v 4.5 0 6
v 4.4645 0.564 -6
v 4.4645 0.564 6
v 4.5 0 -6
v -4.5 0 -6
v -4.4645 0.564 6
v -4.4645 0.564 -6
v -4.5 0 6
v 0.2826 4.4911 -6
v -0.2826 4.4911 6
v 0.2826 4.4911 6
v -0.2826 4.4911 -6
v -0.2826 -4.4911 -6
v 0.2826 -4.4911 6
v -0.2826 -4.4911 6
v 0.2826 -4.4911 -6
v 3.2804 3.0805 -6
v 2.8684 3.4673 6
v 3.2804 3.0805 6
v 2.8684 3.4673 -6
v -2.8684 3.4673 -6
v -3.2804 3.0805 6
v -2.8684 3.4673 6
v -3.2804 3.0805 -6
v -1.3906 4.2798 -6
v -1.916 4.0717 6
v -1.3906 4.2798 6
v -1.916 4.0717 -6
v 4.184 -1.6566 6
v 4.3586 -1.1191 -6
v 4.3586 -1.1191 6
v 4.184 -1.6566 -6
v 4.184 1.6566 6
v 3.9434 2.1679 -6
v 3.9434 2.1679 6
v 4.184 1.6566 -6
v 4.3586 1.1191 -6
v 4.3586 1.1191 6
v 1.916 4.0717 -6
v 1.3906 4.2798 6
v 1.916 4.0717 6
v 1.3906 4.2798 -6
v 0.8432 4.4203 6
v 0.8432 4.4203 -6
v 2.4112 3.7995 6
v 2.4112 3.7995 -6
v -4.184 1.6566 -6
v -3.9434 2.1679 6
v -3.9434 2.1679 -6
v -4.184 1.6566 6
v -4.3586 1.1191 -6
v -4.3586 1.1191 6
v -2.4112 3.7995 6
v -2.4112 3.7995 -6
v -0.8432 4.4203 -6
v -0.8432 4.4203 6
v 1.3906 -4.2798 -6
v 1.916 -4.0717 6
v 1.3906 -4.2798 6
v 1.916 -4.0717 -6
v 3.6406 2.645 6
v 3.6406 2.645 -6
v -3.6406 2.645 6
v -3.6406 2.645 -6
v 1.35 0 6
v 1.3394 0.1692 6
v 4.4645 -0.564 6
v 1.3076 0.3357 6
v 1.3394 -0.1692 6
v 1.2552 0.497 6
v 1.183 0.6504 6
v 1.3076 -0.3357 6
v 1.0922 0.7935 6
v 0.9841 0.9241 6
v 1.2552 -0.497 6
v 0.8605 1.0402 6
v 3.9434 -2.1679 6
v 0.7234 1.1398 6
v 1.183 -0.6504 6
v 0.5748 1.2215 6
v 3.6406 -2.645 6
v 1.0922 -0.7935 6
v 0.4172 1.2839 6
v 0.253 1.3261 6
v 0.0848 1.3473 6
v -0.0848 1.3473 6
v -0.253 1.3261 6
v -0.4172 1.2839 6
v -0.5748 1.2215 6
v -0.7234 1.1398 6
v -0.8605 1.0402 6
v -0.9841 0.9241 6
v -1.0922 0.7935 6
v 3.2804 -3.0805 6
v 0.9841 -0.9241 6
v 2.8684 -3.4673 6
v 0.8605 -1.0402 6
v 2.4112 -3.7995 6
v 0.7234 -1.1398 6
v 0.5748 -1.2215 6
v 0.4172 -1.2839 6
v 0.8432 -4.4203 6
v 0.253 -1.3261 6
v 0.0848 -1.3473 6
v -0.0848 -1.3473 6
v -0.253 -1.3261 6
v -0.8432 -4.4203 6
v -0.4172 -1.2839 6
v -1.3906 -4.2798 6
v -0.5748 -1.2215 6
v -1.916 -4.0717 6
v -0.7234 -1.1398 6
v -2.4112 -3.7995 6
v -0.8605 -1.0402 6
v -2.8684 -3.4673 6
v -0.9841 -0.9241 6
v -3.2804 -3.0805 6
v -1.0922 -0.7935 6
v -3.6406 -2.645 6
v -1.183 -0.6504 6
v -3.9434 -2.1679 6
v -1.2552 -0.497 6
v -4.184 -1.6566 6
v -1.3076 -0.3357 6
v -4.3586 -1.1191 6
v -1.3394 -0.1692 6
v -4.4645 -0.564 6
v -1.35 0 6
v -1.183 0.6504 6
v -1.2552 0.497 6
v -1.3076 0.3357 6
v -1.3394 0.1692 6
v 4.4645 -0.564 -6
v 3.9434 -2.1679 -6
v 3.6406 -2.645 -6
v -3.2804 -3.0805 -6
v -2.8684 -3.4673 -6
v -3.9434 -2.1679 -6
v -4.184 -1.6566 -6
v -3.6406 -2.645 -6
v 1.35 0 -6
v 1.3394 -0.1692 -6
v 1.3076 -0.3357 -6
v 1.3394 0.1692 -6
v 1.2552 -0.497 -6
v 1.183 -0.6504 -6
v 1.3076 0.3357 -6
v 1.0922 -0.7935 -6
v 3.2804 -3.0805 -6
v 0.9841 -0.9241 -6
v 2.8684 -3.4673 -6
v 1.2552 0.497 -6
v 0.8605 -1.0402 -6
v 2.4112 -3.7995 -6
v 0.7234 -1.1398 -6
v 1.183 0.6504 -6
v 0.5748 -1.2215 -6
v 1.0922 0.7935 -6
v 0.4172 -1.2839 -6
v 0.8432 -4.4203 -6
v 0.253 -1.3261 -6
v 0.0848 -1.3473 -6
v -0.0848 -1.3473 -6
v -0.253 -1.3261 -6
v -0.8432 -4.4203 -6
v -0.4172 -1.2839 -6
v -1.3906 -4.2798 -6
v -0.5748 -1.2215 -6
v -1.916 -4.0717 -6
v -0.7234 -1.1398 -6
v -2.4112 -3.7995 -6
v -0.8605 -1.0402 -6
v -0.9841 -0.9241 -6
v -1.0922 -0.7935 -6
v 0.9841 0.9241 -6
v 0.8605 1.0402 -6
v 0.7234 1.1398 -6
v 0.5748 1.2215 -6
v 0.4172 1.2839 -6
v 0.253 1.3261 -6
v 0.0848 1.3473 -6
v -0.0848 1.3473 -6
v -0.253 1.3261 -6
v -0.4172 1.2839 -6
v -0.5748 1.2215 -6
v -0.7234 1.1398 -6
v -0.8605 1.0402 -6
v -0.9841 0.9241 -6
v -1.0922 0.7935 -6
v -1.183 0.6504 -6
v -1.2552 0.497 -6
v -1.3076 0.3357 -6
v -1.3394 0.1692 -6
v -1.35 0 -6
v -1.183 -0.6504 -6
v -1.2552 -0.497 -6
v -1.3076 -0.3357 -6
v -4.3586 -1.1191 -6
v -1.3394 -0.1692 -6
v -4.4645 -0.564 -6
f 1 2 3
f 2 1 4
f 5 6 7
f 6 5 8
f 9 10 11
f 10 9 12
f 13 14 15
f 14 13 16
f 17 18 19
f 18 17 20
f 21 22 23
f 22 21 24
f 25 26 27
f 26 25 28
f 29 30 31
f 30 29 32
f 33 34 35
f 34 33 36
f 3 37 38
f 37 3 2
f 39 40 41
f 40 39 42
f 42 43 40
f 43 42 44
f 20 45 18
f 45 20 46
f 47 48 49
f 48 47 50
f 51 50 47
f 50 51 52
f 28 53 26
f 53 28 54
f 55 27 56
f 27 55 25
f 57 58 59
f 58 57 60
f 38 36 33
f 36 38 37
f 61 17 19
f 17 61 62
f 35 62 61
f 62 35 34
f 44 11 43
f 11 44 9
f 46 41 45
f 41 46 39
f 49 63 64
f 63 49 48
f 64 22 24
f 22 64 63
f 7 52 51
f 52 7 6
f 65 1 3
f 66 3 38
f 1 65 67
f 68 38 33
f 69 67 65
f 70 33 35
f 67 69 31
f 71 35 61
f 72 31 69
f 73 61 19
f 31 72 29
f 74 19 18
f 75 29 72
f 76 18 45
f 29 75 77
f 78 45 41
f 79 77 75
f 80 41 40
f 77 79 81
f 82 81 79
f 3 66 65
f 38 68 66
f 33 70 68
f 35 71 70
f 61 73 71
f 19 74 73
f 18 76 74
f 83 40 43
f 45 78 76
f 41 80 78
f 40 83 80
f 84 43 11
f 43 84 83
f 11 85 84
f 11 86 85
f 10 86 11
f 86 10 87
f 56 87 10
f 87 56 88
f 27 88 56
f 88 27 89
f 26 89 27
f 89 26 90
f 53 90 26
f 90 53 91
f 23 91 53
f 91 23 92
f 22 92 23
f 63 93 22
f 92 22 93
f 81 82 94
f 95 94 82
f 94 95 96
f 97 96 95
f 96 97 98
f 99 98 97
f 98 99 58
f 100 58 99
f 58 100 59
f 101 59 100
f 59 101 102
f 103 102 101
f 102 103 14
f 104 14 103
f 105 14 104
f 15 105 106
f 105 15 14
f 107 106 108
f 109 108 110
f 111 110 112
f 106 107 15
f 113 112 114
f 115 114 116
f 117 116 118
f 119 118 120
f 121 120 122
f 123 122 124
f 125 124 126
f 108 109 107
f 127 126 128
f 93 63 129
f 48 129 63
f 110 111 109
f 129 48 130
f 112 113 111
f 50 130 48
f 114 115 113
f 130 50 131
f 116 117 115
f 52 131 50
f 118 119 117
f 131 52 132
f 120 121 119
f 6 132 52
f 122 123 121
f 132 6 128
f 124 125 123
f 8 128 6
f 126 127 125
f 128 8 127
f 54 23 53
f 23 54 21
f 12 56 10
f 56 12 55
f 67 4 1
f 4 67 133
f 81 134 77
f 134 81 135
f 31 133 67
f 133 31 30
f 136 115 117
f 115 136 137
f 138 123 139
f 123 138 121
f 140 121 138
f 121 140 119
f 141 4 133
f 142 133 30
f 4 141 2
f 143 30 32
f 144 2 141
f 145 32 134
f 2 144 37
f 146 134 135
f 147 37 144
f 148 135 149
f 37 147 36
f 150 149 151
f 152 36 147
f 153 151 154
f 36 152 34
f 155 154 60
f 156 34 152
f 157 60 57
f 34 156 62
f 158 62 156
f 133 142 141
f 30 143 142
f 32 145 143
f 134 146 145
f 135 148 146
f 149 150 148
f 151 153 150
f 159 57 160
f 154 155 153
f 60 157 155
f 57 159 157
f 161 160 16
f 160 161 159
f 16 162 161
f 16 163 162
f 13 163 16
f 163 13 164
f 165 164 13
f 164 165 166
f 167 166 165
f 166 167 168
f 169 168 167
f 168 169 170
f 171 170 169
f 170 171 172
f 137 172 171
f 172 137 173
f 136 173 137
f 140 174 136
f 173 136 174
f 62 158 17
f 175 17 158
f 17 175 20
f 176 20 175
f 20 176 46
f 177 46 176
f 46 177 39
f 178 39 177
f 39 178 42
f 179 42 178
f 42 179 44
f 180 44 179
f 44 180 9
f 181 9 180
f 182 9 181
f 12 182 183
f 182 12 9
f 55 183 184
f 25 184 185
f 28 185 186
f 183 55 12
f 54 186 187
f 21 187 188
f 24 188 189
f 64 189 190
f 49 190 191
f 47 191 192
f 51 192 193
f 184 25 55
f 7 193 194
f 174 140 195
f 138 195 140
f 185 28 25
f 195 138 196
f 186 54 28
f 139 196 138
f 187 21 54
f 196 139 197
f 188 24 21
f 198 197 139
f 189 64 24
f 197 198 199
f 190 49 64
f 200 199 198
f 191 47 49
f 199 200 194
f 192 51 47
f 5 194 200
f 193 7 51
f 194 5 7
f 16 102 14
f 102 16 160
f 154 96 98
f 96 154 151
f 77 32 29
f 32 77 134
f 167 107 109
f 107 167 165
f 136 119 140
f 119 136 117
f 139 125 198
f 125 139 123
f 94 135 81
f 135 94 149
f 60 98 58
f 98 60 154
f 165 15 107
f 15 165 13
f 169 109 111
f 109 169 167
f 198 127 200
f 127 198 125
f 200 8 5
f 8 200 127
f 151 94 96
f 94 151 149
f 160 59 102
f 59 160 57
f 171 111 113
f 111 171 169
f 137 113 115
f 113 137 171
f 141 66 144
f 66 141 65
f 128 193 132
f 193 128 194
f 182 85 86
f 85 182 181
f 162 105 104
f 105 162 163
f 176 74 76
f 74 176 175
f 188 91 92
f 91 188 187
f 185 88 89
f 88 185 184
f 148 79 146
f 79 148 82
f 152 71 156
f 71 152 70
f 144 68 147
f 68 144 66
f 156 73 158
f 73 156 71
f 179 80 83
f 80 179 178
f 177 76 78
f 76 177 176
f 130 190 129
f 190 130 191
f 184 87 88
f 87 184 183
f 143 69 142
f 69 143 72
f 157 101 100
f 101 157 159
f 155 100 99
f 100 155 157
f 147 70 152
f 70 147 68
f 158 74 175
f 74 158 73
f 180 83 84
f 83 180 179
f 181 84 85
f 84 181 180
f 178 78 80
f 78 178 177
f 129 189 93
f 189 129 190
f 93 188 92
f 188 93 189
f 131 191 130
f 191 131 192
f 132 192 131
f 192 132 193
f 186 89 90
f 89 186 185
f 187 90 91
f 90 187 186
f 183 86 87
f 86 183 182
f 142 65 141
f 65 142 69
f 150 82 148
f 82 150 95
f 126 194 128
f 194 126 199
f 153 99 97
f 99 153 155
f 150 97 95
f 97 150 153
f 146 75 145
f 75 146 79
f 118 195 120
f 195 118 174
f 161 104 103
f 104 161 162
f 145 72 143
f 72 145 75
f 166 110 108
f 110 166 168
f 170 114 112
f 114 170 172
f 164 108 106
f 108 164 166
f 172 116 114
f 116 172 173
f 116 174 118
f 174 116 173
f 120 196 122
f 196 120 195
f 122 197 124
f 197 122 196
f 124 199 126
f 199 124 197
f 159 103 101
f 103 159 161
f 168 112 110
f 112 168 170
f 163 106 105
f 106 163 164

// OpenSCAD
$fn = 50;


difference() {
	union() {
		translate(v = [0, 0, -6.0000000000]) {
			cylinder(h = 12, r = 4.5000000000);
		}
	}
	union() {
		translate(v = [0, 0, -100.0000000000]) {
			cylinder(h = 200, r = 1.3500000000);
		}
	}
}
